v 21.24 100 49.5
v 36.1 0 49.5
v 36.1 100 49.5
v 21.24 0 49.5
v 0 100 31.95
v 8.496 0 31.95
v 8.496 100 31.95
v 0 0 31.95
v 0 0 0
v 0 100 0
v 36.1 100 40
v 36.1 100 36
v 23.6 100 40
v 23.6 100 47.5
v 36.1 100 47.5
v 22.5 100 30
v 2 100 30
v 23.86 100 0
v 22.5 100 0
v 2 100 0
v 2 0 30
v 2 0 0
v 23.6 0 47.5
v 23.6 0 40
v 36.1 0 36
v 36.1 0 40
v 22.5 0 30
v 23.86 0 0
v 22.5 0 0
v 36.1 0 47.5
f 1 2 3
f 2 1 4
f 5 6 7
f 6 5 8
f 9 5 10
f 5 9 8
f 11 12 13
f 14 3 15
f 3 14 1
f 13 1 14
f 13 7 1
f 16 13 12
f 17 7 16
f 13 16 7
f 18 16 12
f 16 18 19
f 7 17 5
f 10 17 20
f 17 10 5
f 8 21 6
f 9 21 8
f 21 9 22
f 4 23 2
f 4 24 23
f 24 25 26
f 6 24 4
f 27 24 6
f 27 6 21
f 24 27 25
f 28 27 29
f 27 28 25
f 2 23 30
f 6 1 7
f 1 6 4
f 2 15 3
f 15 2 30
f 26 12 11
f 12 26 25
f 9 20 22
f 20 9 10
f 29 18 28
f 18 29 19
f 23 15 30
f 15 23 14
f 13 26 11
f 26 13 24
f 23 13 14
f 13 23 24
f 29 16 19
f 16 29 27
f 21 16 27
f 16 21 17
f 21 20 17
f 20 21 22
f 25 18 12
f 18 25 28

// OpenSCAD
//////////////////////////////////////////////////
// constants
//////////////////////////////////////////////////

trofast_rail_width = 12.5;
trofast_rail_height = 7.5;
trofast_rail_cover_thickness = 2;

hauck_rail_width = 20.5;
hauck_rail_height = 30;
hauck_rail_offset_x = 2;

total_width = hauck_rail_offset_x + hauck_rail_width + 1.1 + trofast_rail_width;
total_depth = 100;
total_height = hauck_rail_height + 10 + trofast_rail_height + trofast_rail_cover_thickness;

//////////////////////////////////////////////////
// useful variables
//////////////////////////////////////////////////

trofast_rail_depth = total_depth;
trofast_rail_offset_x = total_width - trofast_rail_width;
trofast_rail_offset_z = total_height - trofast_rail_height - trofast_rail_cover_thickness;

hauck_rail_depth = total_depth;

upper_cut_out_width = (total_width - trofast_rail_width) * 0.9;
upper_cut_out_depth = total_depth;
upper_cut_out_height = (total_height - hauck_rail_height) * 0.9;
upper_cout_out_offset_z = total_height;

lower_cout_out_width = (total_width - hauck_rail_width - hauck_rail_offset_x) * 0.9;
lower_cut_out_depth = total_depth;
lower_cout_out_height = (total_height - trofast_rail_height - trofast_rail_cover_thickness) * 0.9;
lower_cout_out_offset_x = total_width - lower_cout_out_width;

//////////////////////////////////////////////////
// modules
//////////////////////////////////////////////////

module base_part(width, depth, height) {
    cube([width, depth, height], false);
}

module rail(width, depth, height, offset_x, offset_z) {
    translate([offset_x, 0, offset_z])
    cube([width, depth, height], false);
}

module upper_cut_out(l, w, h, offset_z){
    l_factor = 0.6;
    difference() {
        translate([0, 0, offset_z - h])
        cube([l, w, h], false);
        prism(l_factor * l, w, h, (1. - l_factor) * l, offset_z - h);
    }
}

module prism(l, w, h, offset_x, offset_z){
    CubePoints = [
      [ 0,  0,  0 ],  // 0
      [ l,  0,  0 ],  // 1
      [ l,  w,  0 ],  // 2
      [ 0,  w,  0 ],  // 3
      [ 0,  0,  0 ],  // 4*
      [ l,  0,  h ],  // 5
      [ l,  w,  h ],  // 6
      [ 0,  w,  0 ]   // 7*
    ];
    CubeFaces = [
      [0,1,2,3],  // bottom
      [4,5,1,0],  // front
      [7,6,5,4],  // top
      [5,6,2,1],  // right
      [6,7,3,2],  // back
      //[7,4,0,3] // left
    ];
    translate([offset_x, 0, offset_z])
    polyhedron(CubePoints, CubeFaces);
}

//////////////////////////////////////////////////
// composition
//////////////////////////////////////////////////

difference() {
    base_part(total_width, total_depth, total_height);
    rail(trofast_rail_width, trofast_rail_depth, trofast_rail_height, trofast_rail_offset_x, trofast_rail_offset_z);
    rail(hauck_rail_width, hauck_rail_depth, hauck_rail_height, hauck_rail_offset_x, 0);
    upper_cut_out(upper_cut_out_width, upper_cut_out_depth, upper_cut_out_height, upper_cout_out_offset_z);
    prism(lower_cout_out_width, upper_cut_out_depth, lower_cout_out_height, lower_cout_out_offset_x, 0);
}
